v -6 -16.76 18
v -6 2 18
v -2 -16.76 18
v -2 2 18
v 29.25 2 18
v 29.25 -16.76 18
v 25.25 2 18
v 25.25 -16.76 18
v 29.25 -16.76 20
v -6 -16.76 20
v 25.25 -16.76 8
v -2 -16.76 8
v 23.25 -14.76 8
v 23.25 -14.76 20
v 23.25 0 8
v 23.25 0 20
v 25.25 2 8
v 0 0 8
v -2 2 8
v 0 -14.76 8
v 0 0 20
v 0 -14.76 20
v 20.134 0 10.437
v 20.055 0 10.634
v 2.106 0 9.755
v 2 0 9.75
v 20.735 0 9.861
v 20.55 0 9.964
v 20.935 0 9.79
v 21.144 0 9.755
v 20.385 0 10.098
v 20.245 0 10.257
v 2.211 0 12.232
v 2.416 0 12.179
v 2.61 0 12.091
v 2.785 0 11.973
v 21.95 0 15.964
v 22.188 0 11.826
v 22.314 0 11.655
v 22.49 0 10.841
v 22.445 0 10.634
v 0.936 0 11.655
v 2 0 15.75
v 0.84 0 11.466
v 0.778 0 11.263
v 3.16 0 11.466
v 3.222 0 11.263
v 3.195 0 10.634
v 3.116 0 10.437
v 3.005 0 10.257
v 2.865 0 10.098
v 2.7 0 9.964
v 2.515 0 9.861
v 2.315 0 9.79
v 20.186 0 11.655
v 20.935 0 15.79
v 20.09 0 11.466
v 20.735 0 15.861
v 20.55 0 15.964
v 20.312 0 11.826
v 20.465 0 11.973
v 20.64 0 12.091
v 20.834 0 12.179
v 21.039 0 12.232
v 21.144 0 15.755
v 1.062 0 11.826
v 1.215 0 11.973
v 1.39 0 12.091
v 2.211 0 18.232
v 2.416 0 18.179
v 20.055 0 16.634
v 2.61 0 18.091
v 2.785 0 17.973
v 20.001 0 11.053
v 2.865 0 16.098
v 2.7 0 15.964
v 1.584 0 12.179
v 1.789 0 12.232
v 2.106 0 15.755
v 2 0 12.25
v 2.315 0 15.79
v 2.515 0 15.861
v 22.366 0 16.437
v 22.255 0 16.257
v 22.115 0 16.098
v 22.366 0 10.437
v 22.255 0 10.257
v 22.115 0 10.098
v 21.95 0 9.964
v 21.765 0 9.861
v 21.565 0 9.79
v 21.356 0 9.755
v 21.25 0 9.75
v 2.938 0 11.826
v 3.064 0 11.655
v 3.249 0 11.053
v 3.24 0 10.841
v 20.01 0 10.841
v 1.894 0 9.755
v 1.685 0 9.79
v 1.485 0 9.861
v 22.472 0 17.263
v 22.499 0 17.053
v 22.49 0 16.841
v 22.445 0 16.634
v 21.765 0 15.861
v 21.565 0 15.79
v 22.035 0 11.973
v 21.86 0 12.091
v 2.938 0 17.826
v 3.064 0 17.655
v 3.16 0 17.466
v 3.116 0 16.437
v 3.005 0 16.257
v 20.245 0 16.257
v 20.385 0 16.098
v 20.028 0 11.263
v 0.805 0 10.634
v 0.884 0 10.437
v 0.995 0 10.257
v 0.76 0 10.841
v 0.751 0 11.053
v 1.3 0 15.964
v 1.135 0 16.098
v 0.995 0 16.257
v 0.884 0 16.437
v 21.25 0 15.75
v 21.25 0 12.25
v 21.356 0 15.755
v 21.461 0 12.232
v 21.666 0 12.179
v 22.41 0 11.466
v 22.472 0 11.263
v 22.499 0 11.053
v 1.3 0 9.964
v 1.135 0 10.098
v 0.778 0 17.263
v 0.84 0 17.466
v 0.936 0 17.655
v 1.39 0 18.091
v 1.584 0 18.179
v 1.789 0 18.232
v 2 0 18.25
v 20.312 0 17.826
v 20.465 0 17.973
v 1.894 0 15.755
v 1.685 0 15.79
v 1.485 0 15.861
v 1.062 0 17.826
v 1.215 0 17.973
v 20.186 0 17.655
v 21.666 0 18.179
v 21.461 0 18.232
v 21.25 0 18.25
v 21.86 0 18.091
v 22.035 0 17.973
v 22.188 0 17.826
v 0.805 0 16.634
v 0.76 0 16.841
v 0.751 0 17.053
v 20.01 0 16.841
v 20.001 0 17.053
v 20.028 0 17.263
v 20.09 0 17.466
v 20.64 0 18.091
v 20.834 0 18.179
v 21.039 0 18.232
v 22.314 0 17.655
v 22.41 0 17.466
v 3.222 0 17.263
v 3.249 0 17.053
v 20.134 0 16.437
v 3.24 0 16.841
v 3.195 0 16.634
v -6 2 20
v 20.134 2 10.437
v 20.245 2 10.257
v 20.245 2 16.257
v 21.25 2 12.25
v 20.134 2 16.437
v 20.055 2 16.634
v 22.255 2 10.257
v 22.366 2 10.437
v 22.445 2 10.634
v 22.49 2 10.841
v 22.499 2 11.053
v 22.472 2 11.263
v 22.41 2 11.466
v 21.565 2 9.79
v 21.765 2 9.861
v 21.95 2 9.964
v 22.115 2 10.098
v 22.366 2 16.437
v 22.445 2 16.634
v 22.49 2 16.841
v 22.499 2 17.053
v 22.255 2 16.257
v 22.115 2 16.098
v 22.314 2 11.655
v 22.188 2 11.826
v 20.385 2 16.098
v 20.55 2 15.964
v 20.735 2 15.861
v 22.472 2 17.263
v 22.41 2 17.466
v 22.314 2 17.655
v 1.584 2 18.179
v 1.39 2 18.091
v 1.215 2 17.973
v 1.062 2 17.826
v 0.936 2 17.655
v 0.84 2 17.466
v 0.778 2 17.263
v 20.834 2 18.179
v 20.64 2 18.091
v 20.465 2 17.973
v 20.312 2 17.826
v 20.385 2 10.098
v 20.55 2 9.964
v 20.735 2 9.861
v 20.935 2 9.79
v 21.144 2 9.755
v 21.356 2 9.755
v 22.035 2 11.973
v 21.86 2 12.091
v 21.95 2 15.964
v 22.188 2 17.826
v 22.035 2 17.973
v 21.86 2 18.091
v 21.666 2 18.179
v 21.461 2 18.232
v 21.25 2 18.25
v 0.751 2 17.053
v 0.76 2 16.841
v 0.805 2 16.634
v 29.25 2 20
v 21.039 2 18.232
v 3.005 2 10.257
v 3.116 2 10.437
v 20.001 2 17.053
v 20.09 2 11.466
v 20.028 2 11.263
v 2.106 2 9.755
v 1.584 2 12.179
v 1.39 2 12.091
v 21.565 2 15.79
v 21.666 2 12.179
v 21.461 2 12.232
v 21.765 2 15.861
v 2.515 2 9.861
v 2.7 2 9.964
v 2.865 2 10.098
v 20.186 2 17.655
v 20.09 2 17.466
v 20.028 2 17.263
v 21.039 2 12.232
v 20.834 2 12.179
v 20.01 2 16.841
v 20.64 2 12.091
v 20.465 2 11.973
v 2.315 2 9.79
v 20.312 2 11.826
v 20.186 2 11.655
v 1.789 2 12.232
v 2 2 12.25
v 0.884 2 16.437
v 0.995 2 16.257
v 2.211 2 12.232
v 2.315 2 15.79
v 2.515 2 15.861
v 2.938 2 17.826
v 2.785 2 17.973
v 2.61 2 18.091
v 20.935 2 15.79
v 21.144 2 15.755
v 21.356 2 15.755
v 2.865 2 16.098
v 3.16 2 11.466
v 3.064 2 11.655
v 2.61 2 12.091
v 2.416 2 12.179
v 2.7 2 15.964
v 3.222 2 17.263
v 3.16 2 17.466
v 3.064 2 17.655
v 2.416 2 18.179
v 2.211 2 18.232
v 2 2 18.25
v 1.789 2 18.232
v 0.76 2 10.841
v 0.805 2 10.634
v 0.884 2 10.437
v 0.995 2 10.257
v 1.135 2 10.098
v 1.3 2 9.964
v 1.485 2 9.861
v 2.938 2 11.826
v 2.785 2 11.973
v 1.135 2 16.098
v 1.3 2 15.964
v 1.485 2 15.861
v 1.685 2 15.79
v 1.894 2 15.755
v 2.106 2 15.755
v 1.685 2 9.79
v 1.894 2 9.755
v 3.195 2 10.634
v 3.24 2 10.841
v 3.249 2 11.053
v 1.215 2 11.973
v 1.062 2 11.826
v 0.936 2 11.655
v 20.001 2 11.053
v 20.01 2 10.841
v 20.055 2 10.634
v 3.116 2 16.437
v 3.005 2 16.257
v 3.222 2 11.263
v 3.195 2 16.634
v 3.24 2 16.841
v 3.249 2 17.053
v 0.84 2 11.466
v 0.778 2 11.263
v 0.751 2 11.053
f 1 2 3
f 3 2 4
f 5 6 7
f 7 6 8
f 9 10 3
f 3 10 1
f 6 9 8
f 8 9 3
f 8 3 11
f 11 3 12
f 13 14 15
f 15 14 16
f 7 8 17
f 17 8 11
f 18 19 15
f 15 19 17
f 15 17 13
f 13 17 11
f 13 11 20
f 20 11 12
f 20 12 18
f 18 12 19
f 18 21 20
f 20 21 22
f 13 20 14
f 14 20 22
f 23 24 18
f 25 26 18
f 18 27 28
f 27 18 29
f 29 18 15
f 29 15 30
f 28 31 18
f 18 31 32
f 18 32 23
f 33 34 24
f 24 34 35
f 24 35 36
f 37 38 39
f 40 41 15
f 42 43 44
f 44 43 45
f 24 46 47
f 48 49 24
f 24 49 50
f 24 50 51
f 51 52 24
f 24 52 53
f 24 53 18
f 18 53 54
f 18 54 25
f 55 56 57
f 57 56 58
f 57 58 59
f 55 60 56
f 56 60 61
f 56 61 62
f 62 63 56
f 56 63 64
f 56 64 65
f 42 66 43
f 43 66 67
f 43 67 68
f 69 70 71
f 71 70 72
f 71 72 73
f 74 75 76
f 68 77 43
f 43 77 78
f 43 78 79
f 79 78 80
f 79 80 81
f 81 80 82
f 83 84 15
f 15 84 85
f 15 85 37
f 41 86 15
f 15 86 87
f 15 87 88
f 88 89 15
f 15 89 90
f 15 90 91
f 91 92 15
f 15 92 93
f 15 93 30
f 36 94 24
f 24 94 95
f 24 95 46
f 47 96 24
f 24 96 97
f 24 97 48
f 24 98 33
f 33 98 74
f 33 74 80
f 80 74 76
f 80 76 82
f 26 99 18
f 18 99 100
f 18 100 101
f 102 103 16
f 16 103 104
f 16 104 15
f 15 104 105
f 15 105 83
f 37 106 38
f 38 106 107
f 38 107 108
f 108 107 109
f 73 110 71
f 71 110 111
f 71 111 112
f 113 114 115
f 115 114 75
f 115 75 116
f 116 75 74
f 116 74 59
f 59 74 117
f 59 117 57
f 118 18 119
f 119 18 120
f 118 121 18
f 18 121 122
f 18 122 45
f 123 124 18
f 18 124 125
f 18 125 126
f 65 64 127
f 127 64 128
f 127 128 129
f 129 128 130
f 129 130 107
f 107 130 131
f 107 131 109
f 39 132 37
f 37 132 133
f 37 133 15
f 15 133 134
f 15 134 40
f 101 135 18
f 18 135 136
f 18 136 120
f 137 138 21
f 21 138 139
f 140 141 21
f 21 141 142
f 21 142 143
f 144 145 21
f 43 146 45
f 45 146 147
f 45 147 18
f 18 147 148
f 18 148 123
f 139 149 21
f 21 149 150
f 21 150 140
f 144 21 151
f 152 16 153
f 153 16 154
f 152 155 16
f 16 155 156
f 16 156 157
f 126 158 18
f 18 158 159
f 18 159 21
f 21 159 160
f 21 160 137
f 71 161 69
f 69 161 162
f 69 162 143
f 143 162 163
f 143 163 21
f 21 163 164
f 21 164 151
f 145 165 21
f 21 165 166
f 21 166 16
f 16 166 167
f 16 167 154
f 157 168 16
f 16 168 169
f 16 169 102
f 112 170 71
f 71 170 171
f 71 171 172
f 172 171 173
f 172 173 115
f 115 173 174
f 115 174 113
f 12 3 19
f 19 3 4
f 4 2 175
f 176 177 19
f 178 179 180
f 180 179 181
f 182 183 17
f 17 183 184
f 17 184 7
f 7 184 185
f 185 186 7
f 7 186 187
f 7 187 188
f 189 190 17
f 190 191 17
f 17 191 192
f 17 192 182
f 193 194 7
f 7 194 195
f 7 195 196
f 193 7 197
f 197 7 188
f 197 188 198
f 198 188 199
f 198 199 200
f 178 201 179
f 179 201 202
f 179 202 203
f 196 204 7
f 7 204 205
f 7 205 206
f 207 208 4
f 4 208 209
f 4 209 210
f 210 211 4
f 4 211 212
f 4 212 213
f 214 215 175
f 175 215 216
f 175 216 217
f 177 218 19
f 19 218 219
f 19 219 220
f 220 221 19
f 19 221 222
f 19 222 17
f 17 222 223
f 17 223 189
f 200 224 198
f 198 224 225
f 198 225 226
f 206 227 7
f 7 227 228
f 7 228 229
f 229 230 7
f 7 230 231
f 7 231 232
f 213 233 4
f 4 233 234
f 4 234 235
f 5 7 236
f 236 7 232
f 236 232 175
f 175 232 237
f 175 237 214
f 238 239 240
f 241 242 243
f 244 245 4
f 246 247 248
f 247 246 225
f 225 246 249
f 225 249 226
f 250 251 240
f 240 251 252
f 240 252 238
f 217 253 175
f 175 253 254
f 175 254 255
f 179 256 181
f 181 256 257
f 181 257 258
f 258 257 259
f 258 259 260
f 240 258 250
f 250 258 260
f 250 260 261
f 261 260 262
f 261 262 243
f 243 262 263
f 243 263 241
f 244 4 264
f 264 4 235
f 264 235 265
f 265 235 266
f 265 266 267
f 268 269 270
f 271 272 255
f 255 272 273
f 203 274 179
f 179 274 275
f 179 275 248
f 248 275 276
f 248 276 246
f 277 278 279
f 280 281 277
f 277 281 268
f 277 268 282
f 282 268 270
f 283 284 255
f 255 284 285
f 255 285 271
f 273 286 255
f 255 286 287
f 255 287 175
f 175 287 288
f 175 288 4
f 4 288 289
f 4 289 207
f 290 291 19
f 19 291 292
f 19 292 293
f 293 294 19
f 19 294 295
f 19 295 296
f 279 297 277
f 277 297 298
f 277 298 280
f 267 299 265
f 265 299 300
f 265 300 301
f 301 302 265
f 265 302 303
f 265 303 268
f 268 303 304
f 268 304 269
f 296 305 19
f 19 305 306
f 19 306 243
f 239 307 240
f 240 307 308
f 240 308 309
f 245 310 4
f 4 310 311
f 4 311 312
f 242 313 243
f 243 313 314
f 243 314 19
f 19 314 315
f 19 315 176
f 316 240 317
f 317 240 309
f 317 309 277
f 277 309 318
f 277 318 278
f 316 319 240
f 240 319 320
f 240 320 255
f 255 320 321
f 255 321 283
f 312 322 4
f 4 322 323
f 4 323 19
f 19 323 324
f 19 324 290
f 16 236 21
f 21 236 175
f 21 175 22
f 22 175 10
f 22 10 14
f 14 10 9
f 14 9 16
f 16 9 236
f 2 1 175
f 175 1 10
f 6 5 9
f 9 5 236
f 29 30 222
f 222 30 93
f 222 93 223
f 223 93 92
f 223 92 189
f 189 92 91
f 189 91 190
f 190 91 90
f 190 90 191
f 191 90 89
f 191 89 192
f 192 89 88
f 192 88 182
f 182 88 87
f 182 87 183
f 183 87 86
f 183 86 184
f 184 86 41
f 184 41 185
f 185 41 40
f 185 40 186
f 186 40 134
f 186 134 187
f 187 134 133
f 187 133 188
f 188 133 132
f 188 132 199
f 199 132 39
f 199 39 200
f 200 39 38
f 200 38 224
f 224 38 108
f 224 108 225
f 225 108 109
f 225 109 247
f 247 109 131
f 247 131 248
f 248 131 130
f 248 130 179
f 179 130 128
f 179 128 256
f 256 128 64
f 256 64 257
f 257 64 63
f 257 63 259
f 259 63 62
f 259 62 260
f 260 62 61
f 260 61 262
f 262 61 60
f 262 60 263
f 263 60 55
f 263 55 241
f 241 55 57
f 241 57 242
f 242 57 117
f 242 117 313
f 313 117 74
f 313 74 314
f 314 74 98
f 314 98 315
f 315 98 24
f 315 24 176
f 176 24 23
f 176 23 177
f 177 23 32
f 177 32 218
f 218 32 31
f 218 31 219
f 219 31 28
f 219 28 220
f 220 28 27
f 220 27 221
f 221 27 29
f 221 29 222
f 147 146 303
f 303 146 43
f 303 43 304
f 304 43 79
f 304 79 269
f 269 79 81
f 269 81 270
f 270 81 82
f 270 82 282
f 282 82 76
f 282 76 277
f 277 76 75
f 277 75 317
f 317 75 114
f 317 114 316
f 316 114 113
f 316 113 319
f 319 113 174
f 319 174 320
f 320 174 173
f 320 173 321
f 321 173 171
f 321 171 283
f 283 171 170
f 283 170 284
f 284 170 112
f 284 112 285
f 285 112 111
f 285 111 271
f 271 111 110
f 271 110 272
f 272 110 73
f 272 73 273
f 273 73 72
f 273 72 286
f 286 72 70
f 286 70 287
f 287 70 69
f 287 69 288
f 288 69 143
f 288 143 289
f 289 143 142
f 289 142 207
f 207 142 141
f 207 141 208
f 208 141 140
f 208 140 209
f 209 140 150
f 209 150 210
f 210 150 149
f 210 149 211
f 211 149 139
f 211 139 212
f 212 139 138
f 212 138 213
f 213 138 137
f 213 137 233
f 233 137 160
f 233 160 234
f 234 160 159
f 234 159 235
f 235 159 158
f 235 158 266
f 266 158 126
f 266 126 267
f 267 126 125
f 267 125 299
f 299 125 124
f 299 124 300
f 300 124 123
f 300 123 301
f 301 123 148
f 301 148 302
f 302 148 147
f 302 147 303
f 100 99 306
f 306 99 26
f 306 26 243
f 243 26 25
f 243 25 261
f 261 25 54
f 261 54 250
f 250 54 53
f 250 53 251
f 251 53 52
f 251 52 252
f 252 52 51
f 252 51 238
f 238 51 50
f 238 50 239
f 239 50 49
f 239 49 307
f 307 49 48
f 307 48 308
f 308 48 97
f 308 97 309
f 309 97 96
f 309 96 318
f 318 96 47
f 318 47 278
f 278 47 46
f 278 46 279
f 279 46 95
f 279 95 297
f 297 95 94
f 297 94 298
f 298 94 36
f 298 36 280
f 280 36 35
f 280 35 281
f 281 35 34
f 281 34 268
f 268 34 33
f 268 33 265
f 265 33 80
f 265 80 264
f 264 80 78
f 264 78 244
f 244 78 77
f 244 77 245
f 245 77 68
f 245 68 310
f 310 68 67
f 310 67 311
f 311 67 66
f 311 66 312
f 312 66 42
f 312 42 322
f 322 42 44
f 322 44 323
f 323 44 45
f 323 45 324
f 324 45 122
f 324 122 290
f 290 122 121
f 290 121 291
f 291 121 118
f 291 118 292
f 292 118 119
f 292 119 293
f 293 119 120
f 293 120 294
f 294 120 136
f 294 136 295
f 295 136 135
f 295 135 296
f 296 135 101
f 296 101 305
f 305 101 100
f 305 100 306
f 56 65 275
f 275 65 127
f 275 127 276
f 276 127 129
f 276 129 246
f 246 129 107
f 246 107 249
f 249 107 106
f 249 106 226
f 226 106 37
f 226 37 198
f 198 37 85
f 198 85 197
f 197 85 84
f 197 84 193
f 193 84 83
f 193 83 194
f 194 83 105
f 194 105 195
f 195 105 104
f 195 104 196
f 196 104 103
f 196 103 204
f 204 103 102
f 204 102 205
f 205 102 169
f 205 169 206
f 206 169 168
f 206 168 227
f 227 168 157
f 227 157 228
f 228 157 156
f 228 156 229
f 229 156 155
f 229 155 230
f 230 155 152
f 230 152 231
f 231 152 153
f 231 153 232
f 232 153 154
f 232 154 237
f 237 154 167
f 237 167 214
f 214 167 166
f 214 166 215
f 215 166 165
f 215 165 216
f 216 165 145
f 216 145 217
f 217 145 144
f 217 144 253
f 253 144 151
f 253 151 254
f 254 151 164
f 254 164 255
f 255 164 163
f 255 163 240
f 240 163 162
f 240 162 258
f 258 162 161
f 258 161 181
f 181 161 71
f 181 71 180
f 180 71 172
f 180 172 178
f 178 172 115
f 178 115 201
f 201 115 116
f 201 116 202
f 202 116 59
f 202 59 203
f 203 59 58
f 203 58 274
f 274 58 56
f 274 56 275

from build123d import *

# Parameters (mm, degrees)
SKETCH1_W            = 27.25
SKETCH1_H            = 18.76
SKETCH1_W_2          = 23.25
SKETCH1_H_2          = 14.76
BOSS_EXTRUDE1_DEPTH  = 18
SKETCH3_W            = 23.25
SKETCH3_H            = 14.76
BOSS_EXTRUDE2_DEPTH  = 2
SKETCH7_W            = 2
SKETCH7_H            = 5
CUT_EXTRUDE1_DEPTH   = 2
SKETCH10_W           = 23.25
SKETCH10_H           = 14.76
SKETCH10_W_2         = 7
SKETCH10_H_2         = 18.76
BOSS_EXTRUDE3_DEPTH  = 2
SKETCH11_R           = 1.5
CUT_EXTRUDE3_DEPTH   = 2
SKETCH12_R           = 1.5
CUT_EXTRUDE4_DEPTH   = 2
FILLET11_R           = 1
SKETCH13_W           = 3
SKETCH13_H           = 18.76
CUT_EXTRUDE5_DEPTH   = 10
CUT_EXTRUDE6_REACH   = 42.094
SKETCH14_W           = 27.25
SKETCH14_H           = 8
SKETCH16_W           = 23.25
SKETCH16_H           = 2
BOSS_EXTRUDE5_DEPTH  = 7.6
SKETCH19_W           = 2
SKETCH19_H           = 0.99
CUT_EXTRUDE8_DEPTH   = 10
BOSS_EXTRUDE6_DEPTH  = 4
SKETCH21_R           = 1.25
CUT_EXTRUDE9_DEPTH   = 2
BOSS_EXTRUDE7_DEPTH  = 1
CUT_EXTRUDE11_START  = -12
CUT_EXTRUDE11_DEPTH  = 12
SKETCH26_W           = 28.086287418
SKETCH26_H           = 15.375704791
CUT_EXTRUDE13_DEPTH  = 4
SKETCH27_W           = 24.075870352
SKETCH27_H           = 3.872197668
CUT_EXTRUDE14_DEPTH  = 12
SKETCH28_W           = 5.439700639
SKETCH28_H           = 5.036759851
BOSS_EXTRUDE8_DEPTH  = 2
SKETCH29_R           = 1.25
CUT_EXTRUDE15_DEPTH  = 2
SKETCH30_W           = 2
SKETCH30_H           = 0.99
BOSS_EXTRUDE9_DEPTH  = 10
SKETCH32_W           = 3.854176667
SKETCH32_H           = 5.494251846
SKETCH32_W_2         = 4.510206738
SKETCH32_H_2         = 5.863268761
BOSS_EXTRUDE11_DEPTH = 2
BOSS_EXTRUDE13_START = -2
BOSS_EXTRUDE13_DEPTH = 2


with BuildPart() as part:
    # Sketch1 → Boss-Extrude1 (new body)
    with BuildSketch(Plane.XY):
        with Locations((11.625, -7.38)):
            Rectangle(SKETCH1_W, SKETCH1_H)
        with Locations((11.625, -7.38)):
            Rectangle(SKETCH1_W_2, SKETCH1_H_2, mode=Mode.SUBTRACT)
    extrude(amount=BOSS_EXTRUDE1_DEPTH)

    # Sketch3 → Boss-Extrude2 (add)
    with BuildSketch(Plane(origin=(0, 0, 0), x_dir=(-1, 0, 0), z_dir=(0, 0, -1))):
        with Locations((-11.625, -7.38)):
            Rectangle(SKETCH3_W, SKETCH3_H)
    extrude(amount=-BOSS_EXTRUDE2_DEPTH)

    # Sketch7 → Cut-Extrude1 (cut)
    with BuildSketch(Plane.ZY.offset(2)):
        with Locations((3, -6.5)):
            Rectangle(SKETCH7_W, SKETCH7_H)
    extrude(amount=-CUT_EXTRUDE1_DEPTH, mode=Mode.SUBTRACT)

    # Sketch10 → Boss-Extrude3 (add)
    # profile 1 of 3: a face of its own
    with BuildSketch(Plane.XY.offset(18)):
        Polygon((-2, -0.03961342), (-2, 2), (-9, 2), (-9, -16.76), (-2, -16.76), (-2, -13.03961342), align=None)
    # profile 2 of 3: a face of its own
    with BuildSketch(Plane.XY.offset(18)):
        Polygon((25.25, 2), (-2, 2), (-2, -0.03961342), (-2, -13.03961342), (-2, -16.76), (25.25, -16.76), align=None)
        with Locations((11.625, -7.38)):
            Rectangle(SKETCH10_W, SKETCH10_H, mode=Mode.SUBTRACT)
    # profile 3 of 3: a face of its own
    with BuildSketch(Plane.XY.offset(18)):
        with Locations((28.75, -7.38)):
            Rectangle(SKETCH10_W_2, SKETCH10_H_2)
    extrude(amount=BOSS_EXTRUDE3_DEPTH)

    # Sketch11 → Cut-Extrude3 (cut)
    with BuildSketch(Plane(origin=(0, 0, 18), x_dir=(-1, 0, 0), z_dir=(0, 0, -1))):
        with Locations((3.5, -8.26)):
            Circle(SKETCH11_R)
    extrude(amount=-CUT_EXTRUDE3_DEPTH, mode=Mode.SUBTRACT)

    # Sketch12 → Cut-Extrude4 (cut)
    with BuildSketch(Plane(origin=(0, 0, 18), x_dir=(-1, 0, 0), z_dir=(0, 0, -1))):
        with Locations((-26.95, -8.26)):
            Circle(SKETCH12_R)
    extrude(amount=-CUT_EXTRUDE4_DEPTH, mode=Mode.SUBTRACT)

    # Fillet11
    fillet11_edges = [part.edges().sort_by_distance(p)[0] for p in [
        (0, -9, 3),
        (0, -4, 3),
        (0, -6.5, 4),
        (-2, -6.5, 4),
        (-2, -4, 3),
        (-2, -9, 3),
    ]]
    fillet(fillet11_edges, radius=FILLET11_R - 0.0001)  # a hair under: the kernel refuses the full size

    # Sketch13 → Cut-Extrude5 (cut)
    with BuildSketch(Plane(origin=(0, 0, 18), x_dir=(-1, 0, 0), z_dir=(0, 0, -1))):
        with Locations((-30.75, -7.38)):
            Rectangle(SKETCH13_W, SKETCH13_H)
        with Locations((7.5, -7.38)):
            Rectangle(SKETCH13_W, SKETCH13_H)
    extrude(amount=-CUT_EXTRUDE5_DEPTH, mode=Mode.SUBTRACT)

    # Cut-Extrude6: up to this face of the body (flat: up to its plane)
    cut_extrude6_end = Plane(part.part.faces().sort_by_distance((11.625, -16.76, 10.256684492))[0])
    # Sketch14 → Cut-Extrude6 (cut, up to the picked face)
    with BuildSketch(Plane(origin=(0, 2, 0), x_dir=(1, 0, 0), z_dir=(0, 1, 0)), mode=Mode.PRIVATE) as cut_extrude6_sk1:
        with Locations((11.625, -4)):
            Rectangle(SKETCH14_W, SKETCH14_H)
    cut_extrude6_tool1 = split(extrude(cut_extrude6_sk1.sketch, amount=-CUT_EXTRUDE6_REACH, mode=Mode.PRIVATE), bisect_by=cut_extrude6_end, keep=Keep.BOTH, mode=Mode.PRIVATE)
    add(cut_extrude6_tool1.solids().sort_by(Axis((11.625, 2, 4), (0, -1, 0)))[0], mode=Mode.SUBTRACT)

    # Sketch16 → Boss-Extrude5 (add)
    with BuildSketch(Plane.XY.offset(20)):
        with Locations((11.625, -15.76)):
            Rectangle(SKETCH16_W, SKETCH16_H)
    extrude(amount=BOSS_EXTRUDE5_DEPTH)

    # Sketch19 → Cut-Extrude8 (cut)
    with BuildSketch(Plane(origin=(0, 0, 8), x_dir=(-1, 0, 0), z_dir=(0, 0, -1))):
        with Locations((1, -7.255)):
            Rectangle(SKETCH19_W, SKETCH19_H)
        with Locations((-24.25, -7.255)):
            Rectangle(SKETCH19_W, SKETCH19_H)
    extrude(amount=-CUT_EXTRUDE8_DEPTH, mode=Mode.SUBTRACT)

    # Sketch20 → Boss-Extrude6 (add)
    with BuildSketch(Plane.XZ.offset(16.76)):
        with BuildLine():
            ThreePointArc((1.734487906, 14.866457564), (-0.15, 17.000000025), (1.734487955, 19.133542442))
            Line((1.734487955, 19.133542442), (4.661486136, 19.497797339))
            ThreePointArc((4.661486136, 19.497797339), (3.240091566, 20.432881138), (1.549246975, 20.622060423))
            ThreePointArc((1.549246975, 20.622060423), (0.742054746, 20.4263791), (0, 20.053276928))
            Line((0, 20.053276928), (0, 20))
            Line((0, 20), (-0.079062289, 20))
            ThreePointArc((-0.079062289, 20), (-1.544419903, 16.128456799), (1.549246968, 13.377939578))
            ThreePointArc((1.549246968, 13.377939578), (3.240091563, 13.567118861), (4.661486136, 14.502202661))
            Line((4.661486136, 14.502202661), (1.734487906, 14.866457564))
        make_face()
        with BuildLine():
            ThreePointArc((1.549246975, 20.622060423), (3.240091566, 20.432881138), (4.661486136, 19.497797339))
            Line((4.661486136, 19.497797339), (14.257253364, 20.691957699))
            ThreePointArc((14.257253364, 20.691957699), (15.89224684, 22.015782374), (17.896084422, 22.656368345))
            Line((17.896084422, 22.656368345), (1.549246975, 20.622060423))
        make_face()
        with BuildLine():
            ThreePointArc((17.896084422, 22.656368345), (15.89224684, 22.015782374), (14.257253364, 20.691957699))
            Line((14.257253364, 20.691957699), (18.081325153, 21.167850334))
            ThreePointArc((18.081325153, 21.167850334), (21.380428532, 20.14789091), (22.8, 17))
            ThreePointArc((22.8, 17), (21.380428595, 13.852109147), (18.081325321, 12.832149645))
            Line((18.081325321, 12.832149645), (14.257253364, 13.308042301))
            ThreePointArc((14.257253364, 13.308042301), (15.89224684, 11.984217626), (17.896084422, 11.343631655))
            ThreePointArc((17.896084422, 11.343631655), (22.37343883, 12.727862432), (24.3, 17))
            ThreePointArc((24.3, 17), (24.082512903, 18.559503854), (23.446648326, 20))
            Line((23.446648326, 20), (23.25, 20))
            Line((23.25, 20), (23.25, 20.296589146))
            ThreePointArc((23.25, 20.296589146), (20.898920406, 22.215837897), (17.896084422, 22.656368345))
        make_face()
        with BuildLine():
            Line((14.257253364, 13.308042301), (4.661486136, 14.502202661))
            ThreePointArc((4.661486136, 14.502202661), (3.240091563, 13.567118861), (1.549246968, 13.377939578))
            Line((1.549246968, 13.377939578), (17.896084422, 11.343631655))
            ThreePointArc((17.896084422, 11.343631655), (15.89224684, 11.984217626), (14.257253364, 13.308042301))
        make_face()
    extrude(amount=BOSS_EXTRUDE6_DEPTH)

    # Sketch21 → Cut-Extrude9 (cut)
    with BuildSketch(Plane.XZ.offset(16.76)):
        with Locations((18.6, 17)):
            Circle(SKETCH21_R)
    extrude(amount=-CUT_EXTRUDE9_DEPTH, mode=Mode.SUBTRACT)

    # Sketch23 → Boss-Extrude7 (add)
    with BuildSketch(Plane.XZ.offset(16.76)):
        Polygon((11.1, 21.100651295), (0.406174607, 19.998863224), (-0.954500861, 17.320033397), (0.387681288, 14.425953139), (11.1, 12.86779769), align=None)
    extrude(amount=BOSS_EXTRUDE7_DEPTH)

    # Sketch24 → Cut-Extrude11 (cut)
    with BuildSketch(Plane.XZ.offset(16.76).offset(CUT_EXTRUDE11_START)):
        with BuildLine():
            ThreePointArc((0, 20.053276928), (0.742054739, 20.426379098), (1.549246961, 20.622060422))
            Line((1.549246961, 20.622060422), (17.896084422, 22.656368345))
            ThreePointArc((17.896084422, 22.656368345), (20.898920406, 22.215837897), (23.25, 20.296589146))
            Line((23.25, 20.296589146), (23.25, 27.6))
            Line((23.25, 27.6), (0, 27.6))
            Line((0, 27.6), (0, 20.053276928))
        make_face()
    extrude(amount=CUT_EXTRUDE11_DEPTH, mode=Mode.SUBTRACT)

    # Sketch26 → Cut-Extrude13 (cut)
    with BuildSketch(Plane.XZ.offset(20.76)):
        with Locations((10.743459592, 18.384139078)):
            Rectangle(SKETCH26_W, SKETCH26_H)
    extrude(amount=-CUT_EXTRUDE13_DEPTH, mode=Mode.SUBTRACT)

    # Sketch27 → Cut-Extrude14 (cut)
    with BuildSketch(Plane(origin=(0, -16.76, 0), x_dir=(-1, 0, 0), z_dir=(0, -1, 0))):
        with Locations((-12.037935176, -21.936098834)):
            Rectangle(SKETCH27_W, SKETCH27_H)
    extrude(amount=-CUT_EXTRUDE14_DEPTH, mode=Mode.SUBTRACT)

    # Sketch28 → Boss-Extrude8 (add)
    with BuildSketch(Plane.XZ.offset(16.76)):
        with Locations((19.018963462, 16.417644729)):
            Rectangle(SKETCH28_W, SKETCH28_H)
    extrude(amount=-BOSS_EXTRUDE8_DEPTH)

    # Sketch29 → Cut-Extrude15 (cut)
    with BuildSketch(Plane(origin=(0, 2, 0), x_dir=(1, 0, 0), z_dir=(0, 1, 0))):
        with Locations(Location((2, -11, 0), (0, 0, 270))):
            Circle(SKETCH29_R)
        with Locations(Location((21.25, -11, 0), (0, 0, 270))):
            Circle(SKETCH29_R)
        with Locations(Location((2, -17, 0), (0, 0, 270))):
            Circle(SKETCH29_R)
        with Locations(Location((21.25, -17, 0), (0, 0, 270))):
            Circle(SKETCH29_R)
    extrude(amount=-CUT_EXTRUDE15_DEPTH, mode=Mode.SUBTRACT)

    # Sketch30 → Boss-Extrude9 (add)
    with BuildSketch(Plane(origin=(0, 0, 18), x_dir=(-1, 0, 0), z_dir=(0, 0, -1))):
        with Locations((-24.25, -7.255)):
            Rectangle(SKETCH30_W, SKETCH30_H)
        with Locations((1, -7.255)):
            Rectangle(SKETCH30_W, SKETCH30_H)
    extrude(amount=BOSS_EXTRUDE9_DEPTH)

    # Sketch32 → Boss-Extrude11 (add)
    with BuildSketch(Plane.XY.offset(20)):
        with Locations((-3.545695394, -6.231493422)):
            Rectangle(SKETCH32_W, SKETCH32_H)
        with Locations((26.590685996, -6.046984965)):
            Rectangle(SKETCH32_W_2, SKETCH32_H_2)
    extrude(amount=-BOSS_EXTRUDE11_DEPTH)

    # Sketch33 → Boss-Extrude13 (add)
    with BuildSketch(Plane.XY.offset(20).offset(BOSS_EXTRUDE13_START)):
        with BuildLine():
            Line((-2.183342779, -8.978619345), (-2.848663443, -8.978619345))
            Line((-2.848663443, -8.978619345), (-2.848663443, -9.611207123))
            ThreePointArc((-2.848663443, -9.611207123), (-2.466418023, -9.347064073), (-2.183342779, -8.978619345))
        make_face()
        with BuildLine():
            Line((-2.848663443, -9.611207123), (-2.848663443, -8.978619345))
            Line((-2.848663443, -8.978619345), (-4.816657221, -8.978619345))
            ThreePointArc((-4.816657221, -8.978619345), (-3.959025839, -9.688038963), (-2.848663443, -9.611207123))
        make_face()
        with BuildLine():
            ThreePointArc((28.266657221, -8.978619345), (26.95, -9.76), (25.633342779, -8.978619345))
            Line((25.633342779, -8.978619345), (28.266657221, -8.978619345))
        make_face()
    extrude(amount=BOSS_EXTRUDE13_DEPTH)


solid = part.part
